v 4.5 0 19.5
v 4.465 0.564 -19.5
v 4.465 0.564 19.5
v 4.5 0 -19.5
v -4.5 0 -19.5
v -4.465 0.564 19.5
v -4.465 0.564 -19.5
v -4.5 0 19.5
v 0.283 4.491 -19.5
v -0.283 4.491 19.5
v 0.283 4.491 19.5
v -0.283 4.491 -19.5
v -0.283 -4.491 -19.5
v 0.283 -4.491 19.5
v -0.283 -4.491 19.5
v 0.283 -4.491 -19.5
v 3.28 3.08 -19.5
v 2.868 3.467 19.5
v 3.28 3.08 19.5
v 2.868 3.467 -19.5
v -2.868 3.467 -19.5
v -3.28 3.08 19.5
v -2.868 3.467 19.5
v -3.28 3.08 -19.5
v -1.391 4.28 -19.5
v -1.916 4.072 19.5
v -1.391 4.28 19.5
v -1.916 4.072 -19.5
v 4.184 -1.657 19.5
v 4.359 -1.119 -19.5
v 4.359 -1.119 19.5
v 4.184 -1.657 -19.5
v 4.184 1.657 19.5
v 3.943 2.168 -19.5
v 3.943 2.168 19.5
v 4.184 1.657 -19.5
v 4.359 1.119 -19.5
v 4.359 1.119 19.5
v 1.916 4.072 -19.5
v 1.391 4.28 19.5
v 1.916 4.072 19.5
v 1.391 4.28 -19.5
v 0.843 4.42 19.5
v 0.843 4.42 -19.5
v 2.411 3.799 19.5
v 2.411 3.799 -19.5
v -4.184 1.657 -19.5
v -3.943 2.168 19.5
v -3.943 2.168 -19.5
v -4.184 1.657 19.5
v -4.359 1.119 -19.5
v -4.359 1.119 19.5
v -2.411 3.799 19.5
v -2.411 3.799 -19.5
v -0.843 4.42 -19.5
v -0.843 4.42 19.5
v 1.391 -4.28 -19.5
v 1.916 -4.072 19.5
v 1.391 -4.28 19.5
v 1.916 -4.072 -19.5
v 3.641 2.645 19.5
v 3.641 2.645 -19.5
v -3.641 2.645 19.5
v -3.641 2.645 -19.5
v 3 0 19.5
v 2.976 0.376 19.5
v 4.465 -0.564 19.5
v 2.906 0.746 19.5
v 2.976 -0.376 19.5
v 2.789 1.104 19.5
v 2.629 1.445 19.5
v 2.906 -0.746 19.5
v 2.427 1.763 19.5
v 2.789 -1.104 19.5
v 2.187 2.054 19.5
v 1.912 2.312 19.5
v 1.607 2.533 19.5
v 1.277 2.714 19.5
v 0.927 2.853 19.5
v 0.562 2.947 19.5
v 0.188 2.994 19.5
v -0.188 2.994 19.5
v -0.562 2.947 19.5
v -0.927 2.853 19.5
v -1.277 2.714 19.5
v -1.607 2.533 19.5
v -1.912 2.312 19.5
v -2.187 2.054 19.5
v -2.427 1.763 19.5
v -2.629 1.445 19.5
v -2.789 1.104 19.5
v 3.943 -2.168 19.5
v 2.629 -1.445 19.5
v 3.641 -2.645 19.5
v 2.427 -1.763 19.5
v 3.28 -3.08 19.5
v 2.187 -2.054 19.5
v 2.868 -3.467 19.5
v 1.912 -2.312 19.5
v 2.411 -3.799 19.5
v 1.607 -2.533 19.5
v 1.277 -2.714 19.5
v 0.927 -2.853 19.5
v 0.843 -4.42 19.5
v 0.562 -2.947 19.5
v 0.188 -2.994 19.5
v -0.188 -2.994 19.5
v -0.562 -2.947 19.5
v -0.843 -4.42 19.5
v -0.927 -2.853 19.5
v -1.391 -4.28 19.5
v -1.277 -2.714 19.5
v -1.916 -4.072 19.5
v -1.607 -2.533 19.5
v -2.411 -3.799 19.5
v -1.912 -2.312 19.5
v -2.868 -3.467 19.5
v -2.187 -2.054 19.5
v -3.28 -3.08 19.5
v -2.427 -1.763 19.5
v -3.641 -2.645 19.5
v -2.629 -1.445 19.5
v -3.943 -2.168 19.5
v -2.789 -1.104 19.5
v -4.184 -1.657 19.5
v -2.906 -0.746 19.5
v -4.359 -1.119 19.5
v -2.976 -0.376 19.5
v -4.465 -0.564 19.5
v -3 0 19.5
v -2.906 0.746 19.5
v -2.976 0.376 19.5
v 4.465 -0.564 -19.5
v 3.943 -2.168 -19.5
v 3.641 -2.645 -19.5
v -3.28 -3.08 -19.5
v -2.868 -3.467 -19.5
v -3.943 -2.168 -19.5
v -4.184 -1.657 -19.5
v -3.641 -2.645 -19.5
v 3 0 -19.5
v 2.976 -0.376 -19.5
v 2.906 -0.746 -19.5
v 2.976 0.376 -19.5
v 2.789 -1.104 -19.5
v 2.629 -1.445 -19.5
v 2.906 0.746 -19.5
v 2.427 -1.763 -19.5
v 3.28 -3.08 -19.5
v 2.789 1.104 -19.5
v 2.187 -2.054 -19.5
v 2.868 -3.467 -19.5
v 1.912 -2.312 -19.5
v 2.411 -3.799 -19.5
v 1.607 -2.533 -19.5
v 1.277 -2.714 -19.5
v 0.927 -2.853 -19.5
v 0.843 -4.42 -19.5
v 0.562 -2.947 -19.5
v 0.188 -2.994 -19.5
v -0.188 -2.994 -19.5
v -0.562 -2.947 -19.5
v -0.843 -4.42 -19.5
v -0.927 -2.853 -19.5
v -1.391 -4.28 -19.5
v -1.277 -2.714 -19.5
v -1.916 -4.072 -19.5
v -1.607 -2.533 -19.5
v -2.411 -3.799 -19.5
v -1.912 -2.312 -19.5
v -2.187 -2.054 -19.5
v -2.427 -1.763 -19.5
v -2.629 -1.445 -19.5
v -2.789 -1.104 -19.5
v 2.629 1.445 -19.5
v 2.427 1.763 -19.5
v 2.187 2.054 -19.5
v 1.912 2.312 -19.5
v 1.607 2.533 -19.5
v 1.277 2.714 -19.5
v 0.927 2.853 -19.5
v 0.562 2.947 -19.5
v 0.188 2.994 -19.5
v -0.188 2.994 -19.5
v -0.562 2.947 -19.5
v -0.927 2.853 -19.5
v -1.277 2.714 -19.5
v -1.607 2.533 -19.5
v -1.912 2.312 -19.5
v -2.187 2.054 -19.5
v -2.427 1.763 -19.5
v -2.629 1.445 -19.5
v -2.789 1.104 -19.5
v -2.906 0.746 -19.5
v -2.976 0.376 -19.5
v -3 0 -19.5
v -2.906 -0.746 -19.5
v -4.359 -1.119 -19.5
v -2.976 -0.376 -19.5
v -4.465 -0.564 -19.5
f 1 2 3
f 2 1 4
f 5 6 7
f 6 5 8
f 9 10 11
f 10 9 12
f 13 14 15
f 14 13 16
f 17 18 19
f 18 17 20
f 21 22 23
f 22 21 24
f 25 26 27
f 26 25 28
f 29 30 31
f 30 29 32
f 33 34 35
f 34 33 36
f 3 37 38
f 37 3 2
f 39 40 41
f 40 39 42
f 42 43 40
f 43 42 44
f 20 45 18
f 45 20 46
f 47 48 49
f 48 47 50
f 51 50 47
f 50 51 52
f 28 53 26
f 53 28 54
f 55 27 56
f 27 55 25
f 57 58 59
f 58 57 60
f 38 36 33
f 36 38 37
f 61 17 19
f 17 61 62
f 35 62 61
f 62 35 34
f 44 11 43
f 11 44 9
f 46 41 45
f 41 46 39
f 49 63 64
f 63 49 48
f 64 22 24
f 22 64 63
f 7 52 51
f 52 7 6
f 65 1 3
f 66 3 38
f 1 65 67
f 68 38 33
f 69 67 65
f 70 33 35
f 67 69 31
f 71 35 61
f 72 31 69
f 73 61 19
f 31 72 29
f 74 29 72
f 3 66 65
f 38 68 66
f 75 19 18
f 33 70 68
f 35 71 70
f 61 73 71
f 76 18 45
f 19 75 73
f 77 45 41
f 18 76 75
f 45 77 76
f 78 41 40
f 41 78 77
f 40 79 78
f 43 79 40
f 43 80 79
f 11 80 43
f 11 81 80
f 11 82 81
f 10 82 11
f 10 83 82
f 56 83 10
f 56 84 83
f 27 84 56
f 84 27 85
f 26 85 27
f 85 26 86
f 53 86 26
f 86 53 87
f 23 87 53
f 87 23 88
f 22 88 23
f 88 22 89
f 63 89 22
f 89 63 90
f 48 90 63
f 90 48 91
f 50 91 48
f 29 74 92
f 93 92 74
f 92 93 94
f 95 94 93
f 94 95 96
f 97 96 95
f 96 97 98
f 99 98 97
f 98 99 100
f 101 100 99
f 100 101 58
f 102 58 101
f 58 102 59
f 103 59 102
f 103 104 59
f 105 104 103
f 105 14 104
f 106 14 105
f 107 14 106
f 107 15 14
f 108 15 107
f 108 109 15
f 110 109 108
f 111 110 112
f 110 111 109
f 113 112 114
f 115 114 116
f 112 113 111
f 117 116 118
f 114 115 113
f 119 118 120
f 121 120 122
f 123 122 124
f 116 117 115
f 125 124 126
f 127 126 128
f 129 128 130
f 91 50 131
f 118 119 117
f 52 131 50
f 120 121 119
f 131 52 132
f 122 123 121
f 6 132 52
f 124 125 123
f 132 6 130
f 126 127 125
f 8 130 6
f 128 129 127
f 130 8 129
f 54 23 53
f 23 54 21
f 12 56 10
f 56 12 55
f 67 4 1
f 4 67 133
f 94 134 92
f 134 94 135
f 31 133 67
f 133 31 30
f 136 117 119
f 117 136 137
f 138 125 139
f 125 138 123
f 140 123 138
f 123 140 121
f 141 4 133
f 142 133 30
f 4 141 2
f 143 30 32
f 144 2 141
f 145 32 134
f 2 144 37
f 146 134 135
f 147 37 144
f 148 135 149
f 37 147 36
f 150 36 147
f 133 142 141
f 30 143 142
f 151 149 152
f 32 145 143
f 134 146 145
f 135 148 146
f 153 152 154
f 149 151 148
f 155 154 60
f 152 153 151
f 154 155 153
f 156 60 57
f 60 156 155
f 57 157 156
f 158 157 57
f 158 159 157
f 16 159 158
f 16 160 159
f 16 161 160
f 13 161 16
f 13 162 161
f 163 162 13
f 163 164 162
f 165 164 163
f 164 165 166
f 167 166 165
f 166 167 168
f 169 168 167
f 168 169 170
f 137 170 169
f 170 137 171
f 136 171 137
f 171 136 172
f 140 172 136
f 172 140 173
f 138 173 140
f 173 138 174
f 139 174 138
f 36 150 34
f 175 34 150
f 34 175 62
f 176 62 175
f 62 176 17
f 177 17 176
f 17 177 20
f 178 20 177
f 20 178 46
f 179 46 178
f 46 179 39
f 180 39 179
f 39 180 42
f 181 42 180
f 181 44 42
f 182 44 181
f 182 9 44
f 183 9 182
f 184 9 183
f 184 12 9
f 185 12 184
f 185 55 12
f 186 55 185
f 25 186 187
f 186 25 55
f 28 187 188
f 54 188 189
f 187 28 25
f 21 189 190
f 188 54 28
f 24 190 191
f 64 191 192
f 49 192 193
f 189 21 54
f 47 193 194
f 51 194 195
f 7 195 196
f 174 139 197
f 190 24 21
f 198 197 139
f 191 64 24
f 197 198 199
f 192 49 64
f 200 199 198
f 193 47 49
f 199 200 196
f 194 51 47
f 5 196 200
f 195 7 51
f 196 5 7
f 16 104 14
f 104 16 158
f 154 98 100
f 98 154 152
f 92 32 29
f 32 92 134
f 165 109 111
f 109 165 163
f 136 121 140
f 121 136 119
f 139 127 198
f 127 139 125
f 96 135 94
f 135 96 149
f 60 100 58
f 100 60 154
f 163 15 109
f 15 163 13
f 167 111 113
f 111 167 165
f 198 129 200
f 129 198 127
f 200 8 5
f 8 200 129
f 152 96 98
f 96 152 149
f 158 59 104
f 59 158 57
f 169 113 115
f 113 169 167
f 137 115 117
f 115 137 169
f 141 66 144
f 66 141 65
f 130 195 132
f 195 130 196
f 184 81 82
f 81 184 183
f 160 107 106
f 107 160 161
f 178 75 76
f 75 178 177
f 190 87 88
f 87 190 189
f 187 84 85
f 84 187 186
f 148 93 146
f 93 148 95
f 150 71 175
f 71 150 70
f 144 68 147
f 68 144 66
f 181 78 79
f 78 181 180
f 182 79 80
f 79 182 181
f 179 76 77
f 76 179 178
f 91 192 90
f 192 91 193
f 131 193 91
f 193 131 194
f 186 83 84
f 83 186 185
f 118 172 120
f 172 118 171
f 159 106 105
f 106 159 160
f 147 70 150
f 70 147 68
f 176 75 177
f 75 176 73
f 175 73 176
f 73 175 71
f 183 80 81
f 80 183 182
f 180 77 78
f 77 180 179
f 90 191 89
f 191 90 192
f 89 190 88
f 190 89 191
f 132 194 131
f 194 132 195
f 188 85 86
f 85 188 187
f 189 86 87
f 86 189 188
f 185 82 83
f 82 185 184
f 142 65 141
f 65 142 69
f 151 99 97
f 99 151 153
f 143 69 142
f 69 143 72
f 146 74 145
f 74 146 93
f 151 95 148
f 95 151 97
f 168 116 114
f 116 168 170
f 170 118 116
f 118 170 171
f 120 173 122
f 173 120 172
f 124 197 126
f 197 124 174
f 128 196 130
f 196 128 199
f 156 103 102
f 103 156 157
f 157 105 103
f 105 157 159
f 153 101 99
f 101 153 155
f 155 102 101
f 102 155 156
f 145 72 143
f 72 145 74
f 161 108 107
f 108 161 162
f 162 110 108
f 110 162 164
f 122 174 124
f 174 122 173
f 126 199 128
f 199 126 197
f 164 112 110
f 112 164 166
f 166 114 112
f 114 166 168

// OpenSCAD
$fn = 50;


difference() {
	union() {
		translate(v = [0, 0, -19.5000000000]) {
			cylinder(h = 39, r = 4.5000000000);
		}
	}
	union() {
		translate(v = [0, 0, -100.0000000000]) {
			cylinder(h = 200, r = 3);
		}
	}
}
